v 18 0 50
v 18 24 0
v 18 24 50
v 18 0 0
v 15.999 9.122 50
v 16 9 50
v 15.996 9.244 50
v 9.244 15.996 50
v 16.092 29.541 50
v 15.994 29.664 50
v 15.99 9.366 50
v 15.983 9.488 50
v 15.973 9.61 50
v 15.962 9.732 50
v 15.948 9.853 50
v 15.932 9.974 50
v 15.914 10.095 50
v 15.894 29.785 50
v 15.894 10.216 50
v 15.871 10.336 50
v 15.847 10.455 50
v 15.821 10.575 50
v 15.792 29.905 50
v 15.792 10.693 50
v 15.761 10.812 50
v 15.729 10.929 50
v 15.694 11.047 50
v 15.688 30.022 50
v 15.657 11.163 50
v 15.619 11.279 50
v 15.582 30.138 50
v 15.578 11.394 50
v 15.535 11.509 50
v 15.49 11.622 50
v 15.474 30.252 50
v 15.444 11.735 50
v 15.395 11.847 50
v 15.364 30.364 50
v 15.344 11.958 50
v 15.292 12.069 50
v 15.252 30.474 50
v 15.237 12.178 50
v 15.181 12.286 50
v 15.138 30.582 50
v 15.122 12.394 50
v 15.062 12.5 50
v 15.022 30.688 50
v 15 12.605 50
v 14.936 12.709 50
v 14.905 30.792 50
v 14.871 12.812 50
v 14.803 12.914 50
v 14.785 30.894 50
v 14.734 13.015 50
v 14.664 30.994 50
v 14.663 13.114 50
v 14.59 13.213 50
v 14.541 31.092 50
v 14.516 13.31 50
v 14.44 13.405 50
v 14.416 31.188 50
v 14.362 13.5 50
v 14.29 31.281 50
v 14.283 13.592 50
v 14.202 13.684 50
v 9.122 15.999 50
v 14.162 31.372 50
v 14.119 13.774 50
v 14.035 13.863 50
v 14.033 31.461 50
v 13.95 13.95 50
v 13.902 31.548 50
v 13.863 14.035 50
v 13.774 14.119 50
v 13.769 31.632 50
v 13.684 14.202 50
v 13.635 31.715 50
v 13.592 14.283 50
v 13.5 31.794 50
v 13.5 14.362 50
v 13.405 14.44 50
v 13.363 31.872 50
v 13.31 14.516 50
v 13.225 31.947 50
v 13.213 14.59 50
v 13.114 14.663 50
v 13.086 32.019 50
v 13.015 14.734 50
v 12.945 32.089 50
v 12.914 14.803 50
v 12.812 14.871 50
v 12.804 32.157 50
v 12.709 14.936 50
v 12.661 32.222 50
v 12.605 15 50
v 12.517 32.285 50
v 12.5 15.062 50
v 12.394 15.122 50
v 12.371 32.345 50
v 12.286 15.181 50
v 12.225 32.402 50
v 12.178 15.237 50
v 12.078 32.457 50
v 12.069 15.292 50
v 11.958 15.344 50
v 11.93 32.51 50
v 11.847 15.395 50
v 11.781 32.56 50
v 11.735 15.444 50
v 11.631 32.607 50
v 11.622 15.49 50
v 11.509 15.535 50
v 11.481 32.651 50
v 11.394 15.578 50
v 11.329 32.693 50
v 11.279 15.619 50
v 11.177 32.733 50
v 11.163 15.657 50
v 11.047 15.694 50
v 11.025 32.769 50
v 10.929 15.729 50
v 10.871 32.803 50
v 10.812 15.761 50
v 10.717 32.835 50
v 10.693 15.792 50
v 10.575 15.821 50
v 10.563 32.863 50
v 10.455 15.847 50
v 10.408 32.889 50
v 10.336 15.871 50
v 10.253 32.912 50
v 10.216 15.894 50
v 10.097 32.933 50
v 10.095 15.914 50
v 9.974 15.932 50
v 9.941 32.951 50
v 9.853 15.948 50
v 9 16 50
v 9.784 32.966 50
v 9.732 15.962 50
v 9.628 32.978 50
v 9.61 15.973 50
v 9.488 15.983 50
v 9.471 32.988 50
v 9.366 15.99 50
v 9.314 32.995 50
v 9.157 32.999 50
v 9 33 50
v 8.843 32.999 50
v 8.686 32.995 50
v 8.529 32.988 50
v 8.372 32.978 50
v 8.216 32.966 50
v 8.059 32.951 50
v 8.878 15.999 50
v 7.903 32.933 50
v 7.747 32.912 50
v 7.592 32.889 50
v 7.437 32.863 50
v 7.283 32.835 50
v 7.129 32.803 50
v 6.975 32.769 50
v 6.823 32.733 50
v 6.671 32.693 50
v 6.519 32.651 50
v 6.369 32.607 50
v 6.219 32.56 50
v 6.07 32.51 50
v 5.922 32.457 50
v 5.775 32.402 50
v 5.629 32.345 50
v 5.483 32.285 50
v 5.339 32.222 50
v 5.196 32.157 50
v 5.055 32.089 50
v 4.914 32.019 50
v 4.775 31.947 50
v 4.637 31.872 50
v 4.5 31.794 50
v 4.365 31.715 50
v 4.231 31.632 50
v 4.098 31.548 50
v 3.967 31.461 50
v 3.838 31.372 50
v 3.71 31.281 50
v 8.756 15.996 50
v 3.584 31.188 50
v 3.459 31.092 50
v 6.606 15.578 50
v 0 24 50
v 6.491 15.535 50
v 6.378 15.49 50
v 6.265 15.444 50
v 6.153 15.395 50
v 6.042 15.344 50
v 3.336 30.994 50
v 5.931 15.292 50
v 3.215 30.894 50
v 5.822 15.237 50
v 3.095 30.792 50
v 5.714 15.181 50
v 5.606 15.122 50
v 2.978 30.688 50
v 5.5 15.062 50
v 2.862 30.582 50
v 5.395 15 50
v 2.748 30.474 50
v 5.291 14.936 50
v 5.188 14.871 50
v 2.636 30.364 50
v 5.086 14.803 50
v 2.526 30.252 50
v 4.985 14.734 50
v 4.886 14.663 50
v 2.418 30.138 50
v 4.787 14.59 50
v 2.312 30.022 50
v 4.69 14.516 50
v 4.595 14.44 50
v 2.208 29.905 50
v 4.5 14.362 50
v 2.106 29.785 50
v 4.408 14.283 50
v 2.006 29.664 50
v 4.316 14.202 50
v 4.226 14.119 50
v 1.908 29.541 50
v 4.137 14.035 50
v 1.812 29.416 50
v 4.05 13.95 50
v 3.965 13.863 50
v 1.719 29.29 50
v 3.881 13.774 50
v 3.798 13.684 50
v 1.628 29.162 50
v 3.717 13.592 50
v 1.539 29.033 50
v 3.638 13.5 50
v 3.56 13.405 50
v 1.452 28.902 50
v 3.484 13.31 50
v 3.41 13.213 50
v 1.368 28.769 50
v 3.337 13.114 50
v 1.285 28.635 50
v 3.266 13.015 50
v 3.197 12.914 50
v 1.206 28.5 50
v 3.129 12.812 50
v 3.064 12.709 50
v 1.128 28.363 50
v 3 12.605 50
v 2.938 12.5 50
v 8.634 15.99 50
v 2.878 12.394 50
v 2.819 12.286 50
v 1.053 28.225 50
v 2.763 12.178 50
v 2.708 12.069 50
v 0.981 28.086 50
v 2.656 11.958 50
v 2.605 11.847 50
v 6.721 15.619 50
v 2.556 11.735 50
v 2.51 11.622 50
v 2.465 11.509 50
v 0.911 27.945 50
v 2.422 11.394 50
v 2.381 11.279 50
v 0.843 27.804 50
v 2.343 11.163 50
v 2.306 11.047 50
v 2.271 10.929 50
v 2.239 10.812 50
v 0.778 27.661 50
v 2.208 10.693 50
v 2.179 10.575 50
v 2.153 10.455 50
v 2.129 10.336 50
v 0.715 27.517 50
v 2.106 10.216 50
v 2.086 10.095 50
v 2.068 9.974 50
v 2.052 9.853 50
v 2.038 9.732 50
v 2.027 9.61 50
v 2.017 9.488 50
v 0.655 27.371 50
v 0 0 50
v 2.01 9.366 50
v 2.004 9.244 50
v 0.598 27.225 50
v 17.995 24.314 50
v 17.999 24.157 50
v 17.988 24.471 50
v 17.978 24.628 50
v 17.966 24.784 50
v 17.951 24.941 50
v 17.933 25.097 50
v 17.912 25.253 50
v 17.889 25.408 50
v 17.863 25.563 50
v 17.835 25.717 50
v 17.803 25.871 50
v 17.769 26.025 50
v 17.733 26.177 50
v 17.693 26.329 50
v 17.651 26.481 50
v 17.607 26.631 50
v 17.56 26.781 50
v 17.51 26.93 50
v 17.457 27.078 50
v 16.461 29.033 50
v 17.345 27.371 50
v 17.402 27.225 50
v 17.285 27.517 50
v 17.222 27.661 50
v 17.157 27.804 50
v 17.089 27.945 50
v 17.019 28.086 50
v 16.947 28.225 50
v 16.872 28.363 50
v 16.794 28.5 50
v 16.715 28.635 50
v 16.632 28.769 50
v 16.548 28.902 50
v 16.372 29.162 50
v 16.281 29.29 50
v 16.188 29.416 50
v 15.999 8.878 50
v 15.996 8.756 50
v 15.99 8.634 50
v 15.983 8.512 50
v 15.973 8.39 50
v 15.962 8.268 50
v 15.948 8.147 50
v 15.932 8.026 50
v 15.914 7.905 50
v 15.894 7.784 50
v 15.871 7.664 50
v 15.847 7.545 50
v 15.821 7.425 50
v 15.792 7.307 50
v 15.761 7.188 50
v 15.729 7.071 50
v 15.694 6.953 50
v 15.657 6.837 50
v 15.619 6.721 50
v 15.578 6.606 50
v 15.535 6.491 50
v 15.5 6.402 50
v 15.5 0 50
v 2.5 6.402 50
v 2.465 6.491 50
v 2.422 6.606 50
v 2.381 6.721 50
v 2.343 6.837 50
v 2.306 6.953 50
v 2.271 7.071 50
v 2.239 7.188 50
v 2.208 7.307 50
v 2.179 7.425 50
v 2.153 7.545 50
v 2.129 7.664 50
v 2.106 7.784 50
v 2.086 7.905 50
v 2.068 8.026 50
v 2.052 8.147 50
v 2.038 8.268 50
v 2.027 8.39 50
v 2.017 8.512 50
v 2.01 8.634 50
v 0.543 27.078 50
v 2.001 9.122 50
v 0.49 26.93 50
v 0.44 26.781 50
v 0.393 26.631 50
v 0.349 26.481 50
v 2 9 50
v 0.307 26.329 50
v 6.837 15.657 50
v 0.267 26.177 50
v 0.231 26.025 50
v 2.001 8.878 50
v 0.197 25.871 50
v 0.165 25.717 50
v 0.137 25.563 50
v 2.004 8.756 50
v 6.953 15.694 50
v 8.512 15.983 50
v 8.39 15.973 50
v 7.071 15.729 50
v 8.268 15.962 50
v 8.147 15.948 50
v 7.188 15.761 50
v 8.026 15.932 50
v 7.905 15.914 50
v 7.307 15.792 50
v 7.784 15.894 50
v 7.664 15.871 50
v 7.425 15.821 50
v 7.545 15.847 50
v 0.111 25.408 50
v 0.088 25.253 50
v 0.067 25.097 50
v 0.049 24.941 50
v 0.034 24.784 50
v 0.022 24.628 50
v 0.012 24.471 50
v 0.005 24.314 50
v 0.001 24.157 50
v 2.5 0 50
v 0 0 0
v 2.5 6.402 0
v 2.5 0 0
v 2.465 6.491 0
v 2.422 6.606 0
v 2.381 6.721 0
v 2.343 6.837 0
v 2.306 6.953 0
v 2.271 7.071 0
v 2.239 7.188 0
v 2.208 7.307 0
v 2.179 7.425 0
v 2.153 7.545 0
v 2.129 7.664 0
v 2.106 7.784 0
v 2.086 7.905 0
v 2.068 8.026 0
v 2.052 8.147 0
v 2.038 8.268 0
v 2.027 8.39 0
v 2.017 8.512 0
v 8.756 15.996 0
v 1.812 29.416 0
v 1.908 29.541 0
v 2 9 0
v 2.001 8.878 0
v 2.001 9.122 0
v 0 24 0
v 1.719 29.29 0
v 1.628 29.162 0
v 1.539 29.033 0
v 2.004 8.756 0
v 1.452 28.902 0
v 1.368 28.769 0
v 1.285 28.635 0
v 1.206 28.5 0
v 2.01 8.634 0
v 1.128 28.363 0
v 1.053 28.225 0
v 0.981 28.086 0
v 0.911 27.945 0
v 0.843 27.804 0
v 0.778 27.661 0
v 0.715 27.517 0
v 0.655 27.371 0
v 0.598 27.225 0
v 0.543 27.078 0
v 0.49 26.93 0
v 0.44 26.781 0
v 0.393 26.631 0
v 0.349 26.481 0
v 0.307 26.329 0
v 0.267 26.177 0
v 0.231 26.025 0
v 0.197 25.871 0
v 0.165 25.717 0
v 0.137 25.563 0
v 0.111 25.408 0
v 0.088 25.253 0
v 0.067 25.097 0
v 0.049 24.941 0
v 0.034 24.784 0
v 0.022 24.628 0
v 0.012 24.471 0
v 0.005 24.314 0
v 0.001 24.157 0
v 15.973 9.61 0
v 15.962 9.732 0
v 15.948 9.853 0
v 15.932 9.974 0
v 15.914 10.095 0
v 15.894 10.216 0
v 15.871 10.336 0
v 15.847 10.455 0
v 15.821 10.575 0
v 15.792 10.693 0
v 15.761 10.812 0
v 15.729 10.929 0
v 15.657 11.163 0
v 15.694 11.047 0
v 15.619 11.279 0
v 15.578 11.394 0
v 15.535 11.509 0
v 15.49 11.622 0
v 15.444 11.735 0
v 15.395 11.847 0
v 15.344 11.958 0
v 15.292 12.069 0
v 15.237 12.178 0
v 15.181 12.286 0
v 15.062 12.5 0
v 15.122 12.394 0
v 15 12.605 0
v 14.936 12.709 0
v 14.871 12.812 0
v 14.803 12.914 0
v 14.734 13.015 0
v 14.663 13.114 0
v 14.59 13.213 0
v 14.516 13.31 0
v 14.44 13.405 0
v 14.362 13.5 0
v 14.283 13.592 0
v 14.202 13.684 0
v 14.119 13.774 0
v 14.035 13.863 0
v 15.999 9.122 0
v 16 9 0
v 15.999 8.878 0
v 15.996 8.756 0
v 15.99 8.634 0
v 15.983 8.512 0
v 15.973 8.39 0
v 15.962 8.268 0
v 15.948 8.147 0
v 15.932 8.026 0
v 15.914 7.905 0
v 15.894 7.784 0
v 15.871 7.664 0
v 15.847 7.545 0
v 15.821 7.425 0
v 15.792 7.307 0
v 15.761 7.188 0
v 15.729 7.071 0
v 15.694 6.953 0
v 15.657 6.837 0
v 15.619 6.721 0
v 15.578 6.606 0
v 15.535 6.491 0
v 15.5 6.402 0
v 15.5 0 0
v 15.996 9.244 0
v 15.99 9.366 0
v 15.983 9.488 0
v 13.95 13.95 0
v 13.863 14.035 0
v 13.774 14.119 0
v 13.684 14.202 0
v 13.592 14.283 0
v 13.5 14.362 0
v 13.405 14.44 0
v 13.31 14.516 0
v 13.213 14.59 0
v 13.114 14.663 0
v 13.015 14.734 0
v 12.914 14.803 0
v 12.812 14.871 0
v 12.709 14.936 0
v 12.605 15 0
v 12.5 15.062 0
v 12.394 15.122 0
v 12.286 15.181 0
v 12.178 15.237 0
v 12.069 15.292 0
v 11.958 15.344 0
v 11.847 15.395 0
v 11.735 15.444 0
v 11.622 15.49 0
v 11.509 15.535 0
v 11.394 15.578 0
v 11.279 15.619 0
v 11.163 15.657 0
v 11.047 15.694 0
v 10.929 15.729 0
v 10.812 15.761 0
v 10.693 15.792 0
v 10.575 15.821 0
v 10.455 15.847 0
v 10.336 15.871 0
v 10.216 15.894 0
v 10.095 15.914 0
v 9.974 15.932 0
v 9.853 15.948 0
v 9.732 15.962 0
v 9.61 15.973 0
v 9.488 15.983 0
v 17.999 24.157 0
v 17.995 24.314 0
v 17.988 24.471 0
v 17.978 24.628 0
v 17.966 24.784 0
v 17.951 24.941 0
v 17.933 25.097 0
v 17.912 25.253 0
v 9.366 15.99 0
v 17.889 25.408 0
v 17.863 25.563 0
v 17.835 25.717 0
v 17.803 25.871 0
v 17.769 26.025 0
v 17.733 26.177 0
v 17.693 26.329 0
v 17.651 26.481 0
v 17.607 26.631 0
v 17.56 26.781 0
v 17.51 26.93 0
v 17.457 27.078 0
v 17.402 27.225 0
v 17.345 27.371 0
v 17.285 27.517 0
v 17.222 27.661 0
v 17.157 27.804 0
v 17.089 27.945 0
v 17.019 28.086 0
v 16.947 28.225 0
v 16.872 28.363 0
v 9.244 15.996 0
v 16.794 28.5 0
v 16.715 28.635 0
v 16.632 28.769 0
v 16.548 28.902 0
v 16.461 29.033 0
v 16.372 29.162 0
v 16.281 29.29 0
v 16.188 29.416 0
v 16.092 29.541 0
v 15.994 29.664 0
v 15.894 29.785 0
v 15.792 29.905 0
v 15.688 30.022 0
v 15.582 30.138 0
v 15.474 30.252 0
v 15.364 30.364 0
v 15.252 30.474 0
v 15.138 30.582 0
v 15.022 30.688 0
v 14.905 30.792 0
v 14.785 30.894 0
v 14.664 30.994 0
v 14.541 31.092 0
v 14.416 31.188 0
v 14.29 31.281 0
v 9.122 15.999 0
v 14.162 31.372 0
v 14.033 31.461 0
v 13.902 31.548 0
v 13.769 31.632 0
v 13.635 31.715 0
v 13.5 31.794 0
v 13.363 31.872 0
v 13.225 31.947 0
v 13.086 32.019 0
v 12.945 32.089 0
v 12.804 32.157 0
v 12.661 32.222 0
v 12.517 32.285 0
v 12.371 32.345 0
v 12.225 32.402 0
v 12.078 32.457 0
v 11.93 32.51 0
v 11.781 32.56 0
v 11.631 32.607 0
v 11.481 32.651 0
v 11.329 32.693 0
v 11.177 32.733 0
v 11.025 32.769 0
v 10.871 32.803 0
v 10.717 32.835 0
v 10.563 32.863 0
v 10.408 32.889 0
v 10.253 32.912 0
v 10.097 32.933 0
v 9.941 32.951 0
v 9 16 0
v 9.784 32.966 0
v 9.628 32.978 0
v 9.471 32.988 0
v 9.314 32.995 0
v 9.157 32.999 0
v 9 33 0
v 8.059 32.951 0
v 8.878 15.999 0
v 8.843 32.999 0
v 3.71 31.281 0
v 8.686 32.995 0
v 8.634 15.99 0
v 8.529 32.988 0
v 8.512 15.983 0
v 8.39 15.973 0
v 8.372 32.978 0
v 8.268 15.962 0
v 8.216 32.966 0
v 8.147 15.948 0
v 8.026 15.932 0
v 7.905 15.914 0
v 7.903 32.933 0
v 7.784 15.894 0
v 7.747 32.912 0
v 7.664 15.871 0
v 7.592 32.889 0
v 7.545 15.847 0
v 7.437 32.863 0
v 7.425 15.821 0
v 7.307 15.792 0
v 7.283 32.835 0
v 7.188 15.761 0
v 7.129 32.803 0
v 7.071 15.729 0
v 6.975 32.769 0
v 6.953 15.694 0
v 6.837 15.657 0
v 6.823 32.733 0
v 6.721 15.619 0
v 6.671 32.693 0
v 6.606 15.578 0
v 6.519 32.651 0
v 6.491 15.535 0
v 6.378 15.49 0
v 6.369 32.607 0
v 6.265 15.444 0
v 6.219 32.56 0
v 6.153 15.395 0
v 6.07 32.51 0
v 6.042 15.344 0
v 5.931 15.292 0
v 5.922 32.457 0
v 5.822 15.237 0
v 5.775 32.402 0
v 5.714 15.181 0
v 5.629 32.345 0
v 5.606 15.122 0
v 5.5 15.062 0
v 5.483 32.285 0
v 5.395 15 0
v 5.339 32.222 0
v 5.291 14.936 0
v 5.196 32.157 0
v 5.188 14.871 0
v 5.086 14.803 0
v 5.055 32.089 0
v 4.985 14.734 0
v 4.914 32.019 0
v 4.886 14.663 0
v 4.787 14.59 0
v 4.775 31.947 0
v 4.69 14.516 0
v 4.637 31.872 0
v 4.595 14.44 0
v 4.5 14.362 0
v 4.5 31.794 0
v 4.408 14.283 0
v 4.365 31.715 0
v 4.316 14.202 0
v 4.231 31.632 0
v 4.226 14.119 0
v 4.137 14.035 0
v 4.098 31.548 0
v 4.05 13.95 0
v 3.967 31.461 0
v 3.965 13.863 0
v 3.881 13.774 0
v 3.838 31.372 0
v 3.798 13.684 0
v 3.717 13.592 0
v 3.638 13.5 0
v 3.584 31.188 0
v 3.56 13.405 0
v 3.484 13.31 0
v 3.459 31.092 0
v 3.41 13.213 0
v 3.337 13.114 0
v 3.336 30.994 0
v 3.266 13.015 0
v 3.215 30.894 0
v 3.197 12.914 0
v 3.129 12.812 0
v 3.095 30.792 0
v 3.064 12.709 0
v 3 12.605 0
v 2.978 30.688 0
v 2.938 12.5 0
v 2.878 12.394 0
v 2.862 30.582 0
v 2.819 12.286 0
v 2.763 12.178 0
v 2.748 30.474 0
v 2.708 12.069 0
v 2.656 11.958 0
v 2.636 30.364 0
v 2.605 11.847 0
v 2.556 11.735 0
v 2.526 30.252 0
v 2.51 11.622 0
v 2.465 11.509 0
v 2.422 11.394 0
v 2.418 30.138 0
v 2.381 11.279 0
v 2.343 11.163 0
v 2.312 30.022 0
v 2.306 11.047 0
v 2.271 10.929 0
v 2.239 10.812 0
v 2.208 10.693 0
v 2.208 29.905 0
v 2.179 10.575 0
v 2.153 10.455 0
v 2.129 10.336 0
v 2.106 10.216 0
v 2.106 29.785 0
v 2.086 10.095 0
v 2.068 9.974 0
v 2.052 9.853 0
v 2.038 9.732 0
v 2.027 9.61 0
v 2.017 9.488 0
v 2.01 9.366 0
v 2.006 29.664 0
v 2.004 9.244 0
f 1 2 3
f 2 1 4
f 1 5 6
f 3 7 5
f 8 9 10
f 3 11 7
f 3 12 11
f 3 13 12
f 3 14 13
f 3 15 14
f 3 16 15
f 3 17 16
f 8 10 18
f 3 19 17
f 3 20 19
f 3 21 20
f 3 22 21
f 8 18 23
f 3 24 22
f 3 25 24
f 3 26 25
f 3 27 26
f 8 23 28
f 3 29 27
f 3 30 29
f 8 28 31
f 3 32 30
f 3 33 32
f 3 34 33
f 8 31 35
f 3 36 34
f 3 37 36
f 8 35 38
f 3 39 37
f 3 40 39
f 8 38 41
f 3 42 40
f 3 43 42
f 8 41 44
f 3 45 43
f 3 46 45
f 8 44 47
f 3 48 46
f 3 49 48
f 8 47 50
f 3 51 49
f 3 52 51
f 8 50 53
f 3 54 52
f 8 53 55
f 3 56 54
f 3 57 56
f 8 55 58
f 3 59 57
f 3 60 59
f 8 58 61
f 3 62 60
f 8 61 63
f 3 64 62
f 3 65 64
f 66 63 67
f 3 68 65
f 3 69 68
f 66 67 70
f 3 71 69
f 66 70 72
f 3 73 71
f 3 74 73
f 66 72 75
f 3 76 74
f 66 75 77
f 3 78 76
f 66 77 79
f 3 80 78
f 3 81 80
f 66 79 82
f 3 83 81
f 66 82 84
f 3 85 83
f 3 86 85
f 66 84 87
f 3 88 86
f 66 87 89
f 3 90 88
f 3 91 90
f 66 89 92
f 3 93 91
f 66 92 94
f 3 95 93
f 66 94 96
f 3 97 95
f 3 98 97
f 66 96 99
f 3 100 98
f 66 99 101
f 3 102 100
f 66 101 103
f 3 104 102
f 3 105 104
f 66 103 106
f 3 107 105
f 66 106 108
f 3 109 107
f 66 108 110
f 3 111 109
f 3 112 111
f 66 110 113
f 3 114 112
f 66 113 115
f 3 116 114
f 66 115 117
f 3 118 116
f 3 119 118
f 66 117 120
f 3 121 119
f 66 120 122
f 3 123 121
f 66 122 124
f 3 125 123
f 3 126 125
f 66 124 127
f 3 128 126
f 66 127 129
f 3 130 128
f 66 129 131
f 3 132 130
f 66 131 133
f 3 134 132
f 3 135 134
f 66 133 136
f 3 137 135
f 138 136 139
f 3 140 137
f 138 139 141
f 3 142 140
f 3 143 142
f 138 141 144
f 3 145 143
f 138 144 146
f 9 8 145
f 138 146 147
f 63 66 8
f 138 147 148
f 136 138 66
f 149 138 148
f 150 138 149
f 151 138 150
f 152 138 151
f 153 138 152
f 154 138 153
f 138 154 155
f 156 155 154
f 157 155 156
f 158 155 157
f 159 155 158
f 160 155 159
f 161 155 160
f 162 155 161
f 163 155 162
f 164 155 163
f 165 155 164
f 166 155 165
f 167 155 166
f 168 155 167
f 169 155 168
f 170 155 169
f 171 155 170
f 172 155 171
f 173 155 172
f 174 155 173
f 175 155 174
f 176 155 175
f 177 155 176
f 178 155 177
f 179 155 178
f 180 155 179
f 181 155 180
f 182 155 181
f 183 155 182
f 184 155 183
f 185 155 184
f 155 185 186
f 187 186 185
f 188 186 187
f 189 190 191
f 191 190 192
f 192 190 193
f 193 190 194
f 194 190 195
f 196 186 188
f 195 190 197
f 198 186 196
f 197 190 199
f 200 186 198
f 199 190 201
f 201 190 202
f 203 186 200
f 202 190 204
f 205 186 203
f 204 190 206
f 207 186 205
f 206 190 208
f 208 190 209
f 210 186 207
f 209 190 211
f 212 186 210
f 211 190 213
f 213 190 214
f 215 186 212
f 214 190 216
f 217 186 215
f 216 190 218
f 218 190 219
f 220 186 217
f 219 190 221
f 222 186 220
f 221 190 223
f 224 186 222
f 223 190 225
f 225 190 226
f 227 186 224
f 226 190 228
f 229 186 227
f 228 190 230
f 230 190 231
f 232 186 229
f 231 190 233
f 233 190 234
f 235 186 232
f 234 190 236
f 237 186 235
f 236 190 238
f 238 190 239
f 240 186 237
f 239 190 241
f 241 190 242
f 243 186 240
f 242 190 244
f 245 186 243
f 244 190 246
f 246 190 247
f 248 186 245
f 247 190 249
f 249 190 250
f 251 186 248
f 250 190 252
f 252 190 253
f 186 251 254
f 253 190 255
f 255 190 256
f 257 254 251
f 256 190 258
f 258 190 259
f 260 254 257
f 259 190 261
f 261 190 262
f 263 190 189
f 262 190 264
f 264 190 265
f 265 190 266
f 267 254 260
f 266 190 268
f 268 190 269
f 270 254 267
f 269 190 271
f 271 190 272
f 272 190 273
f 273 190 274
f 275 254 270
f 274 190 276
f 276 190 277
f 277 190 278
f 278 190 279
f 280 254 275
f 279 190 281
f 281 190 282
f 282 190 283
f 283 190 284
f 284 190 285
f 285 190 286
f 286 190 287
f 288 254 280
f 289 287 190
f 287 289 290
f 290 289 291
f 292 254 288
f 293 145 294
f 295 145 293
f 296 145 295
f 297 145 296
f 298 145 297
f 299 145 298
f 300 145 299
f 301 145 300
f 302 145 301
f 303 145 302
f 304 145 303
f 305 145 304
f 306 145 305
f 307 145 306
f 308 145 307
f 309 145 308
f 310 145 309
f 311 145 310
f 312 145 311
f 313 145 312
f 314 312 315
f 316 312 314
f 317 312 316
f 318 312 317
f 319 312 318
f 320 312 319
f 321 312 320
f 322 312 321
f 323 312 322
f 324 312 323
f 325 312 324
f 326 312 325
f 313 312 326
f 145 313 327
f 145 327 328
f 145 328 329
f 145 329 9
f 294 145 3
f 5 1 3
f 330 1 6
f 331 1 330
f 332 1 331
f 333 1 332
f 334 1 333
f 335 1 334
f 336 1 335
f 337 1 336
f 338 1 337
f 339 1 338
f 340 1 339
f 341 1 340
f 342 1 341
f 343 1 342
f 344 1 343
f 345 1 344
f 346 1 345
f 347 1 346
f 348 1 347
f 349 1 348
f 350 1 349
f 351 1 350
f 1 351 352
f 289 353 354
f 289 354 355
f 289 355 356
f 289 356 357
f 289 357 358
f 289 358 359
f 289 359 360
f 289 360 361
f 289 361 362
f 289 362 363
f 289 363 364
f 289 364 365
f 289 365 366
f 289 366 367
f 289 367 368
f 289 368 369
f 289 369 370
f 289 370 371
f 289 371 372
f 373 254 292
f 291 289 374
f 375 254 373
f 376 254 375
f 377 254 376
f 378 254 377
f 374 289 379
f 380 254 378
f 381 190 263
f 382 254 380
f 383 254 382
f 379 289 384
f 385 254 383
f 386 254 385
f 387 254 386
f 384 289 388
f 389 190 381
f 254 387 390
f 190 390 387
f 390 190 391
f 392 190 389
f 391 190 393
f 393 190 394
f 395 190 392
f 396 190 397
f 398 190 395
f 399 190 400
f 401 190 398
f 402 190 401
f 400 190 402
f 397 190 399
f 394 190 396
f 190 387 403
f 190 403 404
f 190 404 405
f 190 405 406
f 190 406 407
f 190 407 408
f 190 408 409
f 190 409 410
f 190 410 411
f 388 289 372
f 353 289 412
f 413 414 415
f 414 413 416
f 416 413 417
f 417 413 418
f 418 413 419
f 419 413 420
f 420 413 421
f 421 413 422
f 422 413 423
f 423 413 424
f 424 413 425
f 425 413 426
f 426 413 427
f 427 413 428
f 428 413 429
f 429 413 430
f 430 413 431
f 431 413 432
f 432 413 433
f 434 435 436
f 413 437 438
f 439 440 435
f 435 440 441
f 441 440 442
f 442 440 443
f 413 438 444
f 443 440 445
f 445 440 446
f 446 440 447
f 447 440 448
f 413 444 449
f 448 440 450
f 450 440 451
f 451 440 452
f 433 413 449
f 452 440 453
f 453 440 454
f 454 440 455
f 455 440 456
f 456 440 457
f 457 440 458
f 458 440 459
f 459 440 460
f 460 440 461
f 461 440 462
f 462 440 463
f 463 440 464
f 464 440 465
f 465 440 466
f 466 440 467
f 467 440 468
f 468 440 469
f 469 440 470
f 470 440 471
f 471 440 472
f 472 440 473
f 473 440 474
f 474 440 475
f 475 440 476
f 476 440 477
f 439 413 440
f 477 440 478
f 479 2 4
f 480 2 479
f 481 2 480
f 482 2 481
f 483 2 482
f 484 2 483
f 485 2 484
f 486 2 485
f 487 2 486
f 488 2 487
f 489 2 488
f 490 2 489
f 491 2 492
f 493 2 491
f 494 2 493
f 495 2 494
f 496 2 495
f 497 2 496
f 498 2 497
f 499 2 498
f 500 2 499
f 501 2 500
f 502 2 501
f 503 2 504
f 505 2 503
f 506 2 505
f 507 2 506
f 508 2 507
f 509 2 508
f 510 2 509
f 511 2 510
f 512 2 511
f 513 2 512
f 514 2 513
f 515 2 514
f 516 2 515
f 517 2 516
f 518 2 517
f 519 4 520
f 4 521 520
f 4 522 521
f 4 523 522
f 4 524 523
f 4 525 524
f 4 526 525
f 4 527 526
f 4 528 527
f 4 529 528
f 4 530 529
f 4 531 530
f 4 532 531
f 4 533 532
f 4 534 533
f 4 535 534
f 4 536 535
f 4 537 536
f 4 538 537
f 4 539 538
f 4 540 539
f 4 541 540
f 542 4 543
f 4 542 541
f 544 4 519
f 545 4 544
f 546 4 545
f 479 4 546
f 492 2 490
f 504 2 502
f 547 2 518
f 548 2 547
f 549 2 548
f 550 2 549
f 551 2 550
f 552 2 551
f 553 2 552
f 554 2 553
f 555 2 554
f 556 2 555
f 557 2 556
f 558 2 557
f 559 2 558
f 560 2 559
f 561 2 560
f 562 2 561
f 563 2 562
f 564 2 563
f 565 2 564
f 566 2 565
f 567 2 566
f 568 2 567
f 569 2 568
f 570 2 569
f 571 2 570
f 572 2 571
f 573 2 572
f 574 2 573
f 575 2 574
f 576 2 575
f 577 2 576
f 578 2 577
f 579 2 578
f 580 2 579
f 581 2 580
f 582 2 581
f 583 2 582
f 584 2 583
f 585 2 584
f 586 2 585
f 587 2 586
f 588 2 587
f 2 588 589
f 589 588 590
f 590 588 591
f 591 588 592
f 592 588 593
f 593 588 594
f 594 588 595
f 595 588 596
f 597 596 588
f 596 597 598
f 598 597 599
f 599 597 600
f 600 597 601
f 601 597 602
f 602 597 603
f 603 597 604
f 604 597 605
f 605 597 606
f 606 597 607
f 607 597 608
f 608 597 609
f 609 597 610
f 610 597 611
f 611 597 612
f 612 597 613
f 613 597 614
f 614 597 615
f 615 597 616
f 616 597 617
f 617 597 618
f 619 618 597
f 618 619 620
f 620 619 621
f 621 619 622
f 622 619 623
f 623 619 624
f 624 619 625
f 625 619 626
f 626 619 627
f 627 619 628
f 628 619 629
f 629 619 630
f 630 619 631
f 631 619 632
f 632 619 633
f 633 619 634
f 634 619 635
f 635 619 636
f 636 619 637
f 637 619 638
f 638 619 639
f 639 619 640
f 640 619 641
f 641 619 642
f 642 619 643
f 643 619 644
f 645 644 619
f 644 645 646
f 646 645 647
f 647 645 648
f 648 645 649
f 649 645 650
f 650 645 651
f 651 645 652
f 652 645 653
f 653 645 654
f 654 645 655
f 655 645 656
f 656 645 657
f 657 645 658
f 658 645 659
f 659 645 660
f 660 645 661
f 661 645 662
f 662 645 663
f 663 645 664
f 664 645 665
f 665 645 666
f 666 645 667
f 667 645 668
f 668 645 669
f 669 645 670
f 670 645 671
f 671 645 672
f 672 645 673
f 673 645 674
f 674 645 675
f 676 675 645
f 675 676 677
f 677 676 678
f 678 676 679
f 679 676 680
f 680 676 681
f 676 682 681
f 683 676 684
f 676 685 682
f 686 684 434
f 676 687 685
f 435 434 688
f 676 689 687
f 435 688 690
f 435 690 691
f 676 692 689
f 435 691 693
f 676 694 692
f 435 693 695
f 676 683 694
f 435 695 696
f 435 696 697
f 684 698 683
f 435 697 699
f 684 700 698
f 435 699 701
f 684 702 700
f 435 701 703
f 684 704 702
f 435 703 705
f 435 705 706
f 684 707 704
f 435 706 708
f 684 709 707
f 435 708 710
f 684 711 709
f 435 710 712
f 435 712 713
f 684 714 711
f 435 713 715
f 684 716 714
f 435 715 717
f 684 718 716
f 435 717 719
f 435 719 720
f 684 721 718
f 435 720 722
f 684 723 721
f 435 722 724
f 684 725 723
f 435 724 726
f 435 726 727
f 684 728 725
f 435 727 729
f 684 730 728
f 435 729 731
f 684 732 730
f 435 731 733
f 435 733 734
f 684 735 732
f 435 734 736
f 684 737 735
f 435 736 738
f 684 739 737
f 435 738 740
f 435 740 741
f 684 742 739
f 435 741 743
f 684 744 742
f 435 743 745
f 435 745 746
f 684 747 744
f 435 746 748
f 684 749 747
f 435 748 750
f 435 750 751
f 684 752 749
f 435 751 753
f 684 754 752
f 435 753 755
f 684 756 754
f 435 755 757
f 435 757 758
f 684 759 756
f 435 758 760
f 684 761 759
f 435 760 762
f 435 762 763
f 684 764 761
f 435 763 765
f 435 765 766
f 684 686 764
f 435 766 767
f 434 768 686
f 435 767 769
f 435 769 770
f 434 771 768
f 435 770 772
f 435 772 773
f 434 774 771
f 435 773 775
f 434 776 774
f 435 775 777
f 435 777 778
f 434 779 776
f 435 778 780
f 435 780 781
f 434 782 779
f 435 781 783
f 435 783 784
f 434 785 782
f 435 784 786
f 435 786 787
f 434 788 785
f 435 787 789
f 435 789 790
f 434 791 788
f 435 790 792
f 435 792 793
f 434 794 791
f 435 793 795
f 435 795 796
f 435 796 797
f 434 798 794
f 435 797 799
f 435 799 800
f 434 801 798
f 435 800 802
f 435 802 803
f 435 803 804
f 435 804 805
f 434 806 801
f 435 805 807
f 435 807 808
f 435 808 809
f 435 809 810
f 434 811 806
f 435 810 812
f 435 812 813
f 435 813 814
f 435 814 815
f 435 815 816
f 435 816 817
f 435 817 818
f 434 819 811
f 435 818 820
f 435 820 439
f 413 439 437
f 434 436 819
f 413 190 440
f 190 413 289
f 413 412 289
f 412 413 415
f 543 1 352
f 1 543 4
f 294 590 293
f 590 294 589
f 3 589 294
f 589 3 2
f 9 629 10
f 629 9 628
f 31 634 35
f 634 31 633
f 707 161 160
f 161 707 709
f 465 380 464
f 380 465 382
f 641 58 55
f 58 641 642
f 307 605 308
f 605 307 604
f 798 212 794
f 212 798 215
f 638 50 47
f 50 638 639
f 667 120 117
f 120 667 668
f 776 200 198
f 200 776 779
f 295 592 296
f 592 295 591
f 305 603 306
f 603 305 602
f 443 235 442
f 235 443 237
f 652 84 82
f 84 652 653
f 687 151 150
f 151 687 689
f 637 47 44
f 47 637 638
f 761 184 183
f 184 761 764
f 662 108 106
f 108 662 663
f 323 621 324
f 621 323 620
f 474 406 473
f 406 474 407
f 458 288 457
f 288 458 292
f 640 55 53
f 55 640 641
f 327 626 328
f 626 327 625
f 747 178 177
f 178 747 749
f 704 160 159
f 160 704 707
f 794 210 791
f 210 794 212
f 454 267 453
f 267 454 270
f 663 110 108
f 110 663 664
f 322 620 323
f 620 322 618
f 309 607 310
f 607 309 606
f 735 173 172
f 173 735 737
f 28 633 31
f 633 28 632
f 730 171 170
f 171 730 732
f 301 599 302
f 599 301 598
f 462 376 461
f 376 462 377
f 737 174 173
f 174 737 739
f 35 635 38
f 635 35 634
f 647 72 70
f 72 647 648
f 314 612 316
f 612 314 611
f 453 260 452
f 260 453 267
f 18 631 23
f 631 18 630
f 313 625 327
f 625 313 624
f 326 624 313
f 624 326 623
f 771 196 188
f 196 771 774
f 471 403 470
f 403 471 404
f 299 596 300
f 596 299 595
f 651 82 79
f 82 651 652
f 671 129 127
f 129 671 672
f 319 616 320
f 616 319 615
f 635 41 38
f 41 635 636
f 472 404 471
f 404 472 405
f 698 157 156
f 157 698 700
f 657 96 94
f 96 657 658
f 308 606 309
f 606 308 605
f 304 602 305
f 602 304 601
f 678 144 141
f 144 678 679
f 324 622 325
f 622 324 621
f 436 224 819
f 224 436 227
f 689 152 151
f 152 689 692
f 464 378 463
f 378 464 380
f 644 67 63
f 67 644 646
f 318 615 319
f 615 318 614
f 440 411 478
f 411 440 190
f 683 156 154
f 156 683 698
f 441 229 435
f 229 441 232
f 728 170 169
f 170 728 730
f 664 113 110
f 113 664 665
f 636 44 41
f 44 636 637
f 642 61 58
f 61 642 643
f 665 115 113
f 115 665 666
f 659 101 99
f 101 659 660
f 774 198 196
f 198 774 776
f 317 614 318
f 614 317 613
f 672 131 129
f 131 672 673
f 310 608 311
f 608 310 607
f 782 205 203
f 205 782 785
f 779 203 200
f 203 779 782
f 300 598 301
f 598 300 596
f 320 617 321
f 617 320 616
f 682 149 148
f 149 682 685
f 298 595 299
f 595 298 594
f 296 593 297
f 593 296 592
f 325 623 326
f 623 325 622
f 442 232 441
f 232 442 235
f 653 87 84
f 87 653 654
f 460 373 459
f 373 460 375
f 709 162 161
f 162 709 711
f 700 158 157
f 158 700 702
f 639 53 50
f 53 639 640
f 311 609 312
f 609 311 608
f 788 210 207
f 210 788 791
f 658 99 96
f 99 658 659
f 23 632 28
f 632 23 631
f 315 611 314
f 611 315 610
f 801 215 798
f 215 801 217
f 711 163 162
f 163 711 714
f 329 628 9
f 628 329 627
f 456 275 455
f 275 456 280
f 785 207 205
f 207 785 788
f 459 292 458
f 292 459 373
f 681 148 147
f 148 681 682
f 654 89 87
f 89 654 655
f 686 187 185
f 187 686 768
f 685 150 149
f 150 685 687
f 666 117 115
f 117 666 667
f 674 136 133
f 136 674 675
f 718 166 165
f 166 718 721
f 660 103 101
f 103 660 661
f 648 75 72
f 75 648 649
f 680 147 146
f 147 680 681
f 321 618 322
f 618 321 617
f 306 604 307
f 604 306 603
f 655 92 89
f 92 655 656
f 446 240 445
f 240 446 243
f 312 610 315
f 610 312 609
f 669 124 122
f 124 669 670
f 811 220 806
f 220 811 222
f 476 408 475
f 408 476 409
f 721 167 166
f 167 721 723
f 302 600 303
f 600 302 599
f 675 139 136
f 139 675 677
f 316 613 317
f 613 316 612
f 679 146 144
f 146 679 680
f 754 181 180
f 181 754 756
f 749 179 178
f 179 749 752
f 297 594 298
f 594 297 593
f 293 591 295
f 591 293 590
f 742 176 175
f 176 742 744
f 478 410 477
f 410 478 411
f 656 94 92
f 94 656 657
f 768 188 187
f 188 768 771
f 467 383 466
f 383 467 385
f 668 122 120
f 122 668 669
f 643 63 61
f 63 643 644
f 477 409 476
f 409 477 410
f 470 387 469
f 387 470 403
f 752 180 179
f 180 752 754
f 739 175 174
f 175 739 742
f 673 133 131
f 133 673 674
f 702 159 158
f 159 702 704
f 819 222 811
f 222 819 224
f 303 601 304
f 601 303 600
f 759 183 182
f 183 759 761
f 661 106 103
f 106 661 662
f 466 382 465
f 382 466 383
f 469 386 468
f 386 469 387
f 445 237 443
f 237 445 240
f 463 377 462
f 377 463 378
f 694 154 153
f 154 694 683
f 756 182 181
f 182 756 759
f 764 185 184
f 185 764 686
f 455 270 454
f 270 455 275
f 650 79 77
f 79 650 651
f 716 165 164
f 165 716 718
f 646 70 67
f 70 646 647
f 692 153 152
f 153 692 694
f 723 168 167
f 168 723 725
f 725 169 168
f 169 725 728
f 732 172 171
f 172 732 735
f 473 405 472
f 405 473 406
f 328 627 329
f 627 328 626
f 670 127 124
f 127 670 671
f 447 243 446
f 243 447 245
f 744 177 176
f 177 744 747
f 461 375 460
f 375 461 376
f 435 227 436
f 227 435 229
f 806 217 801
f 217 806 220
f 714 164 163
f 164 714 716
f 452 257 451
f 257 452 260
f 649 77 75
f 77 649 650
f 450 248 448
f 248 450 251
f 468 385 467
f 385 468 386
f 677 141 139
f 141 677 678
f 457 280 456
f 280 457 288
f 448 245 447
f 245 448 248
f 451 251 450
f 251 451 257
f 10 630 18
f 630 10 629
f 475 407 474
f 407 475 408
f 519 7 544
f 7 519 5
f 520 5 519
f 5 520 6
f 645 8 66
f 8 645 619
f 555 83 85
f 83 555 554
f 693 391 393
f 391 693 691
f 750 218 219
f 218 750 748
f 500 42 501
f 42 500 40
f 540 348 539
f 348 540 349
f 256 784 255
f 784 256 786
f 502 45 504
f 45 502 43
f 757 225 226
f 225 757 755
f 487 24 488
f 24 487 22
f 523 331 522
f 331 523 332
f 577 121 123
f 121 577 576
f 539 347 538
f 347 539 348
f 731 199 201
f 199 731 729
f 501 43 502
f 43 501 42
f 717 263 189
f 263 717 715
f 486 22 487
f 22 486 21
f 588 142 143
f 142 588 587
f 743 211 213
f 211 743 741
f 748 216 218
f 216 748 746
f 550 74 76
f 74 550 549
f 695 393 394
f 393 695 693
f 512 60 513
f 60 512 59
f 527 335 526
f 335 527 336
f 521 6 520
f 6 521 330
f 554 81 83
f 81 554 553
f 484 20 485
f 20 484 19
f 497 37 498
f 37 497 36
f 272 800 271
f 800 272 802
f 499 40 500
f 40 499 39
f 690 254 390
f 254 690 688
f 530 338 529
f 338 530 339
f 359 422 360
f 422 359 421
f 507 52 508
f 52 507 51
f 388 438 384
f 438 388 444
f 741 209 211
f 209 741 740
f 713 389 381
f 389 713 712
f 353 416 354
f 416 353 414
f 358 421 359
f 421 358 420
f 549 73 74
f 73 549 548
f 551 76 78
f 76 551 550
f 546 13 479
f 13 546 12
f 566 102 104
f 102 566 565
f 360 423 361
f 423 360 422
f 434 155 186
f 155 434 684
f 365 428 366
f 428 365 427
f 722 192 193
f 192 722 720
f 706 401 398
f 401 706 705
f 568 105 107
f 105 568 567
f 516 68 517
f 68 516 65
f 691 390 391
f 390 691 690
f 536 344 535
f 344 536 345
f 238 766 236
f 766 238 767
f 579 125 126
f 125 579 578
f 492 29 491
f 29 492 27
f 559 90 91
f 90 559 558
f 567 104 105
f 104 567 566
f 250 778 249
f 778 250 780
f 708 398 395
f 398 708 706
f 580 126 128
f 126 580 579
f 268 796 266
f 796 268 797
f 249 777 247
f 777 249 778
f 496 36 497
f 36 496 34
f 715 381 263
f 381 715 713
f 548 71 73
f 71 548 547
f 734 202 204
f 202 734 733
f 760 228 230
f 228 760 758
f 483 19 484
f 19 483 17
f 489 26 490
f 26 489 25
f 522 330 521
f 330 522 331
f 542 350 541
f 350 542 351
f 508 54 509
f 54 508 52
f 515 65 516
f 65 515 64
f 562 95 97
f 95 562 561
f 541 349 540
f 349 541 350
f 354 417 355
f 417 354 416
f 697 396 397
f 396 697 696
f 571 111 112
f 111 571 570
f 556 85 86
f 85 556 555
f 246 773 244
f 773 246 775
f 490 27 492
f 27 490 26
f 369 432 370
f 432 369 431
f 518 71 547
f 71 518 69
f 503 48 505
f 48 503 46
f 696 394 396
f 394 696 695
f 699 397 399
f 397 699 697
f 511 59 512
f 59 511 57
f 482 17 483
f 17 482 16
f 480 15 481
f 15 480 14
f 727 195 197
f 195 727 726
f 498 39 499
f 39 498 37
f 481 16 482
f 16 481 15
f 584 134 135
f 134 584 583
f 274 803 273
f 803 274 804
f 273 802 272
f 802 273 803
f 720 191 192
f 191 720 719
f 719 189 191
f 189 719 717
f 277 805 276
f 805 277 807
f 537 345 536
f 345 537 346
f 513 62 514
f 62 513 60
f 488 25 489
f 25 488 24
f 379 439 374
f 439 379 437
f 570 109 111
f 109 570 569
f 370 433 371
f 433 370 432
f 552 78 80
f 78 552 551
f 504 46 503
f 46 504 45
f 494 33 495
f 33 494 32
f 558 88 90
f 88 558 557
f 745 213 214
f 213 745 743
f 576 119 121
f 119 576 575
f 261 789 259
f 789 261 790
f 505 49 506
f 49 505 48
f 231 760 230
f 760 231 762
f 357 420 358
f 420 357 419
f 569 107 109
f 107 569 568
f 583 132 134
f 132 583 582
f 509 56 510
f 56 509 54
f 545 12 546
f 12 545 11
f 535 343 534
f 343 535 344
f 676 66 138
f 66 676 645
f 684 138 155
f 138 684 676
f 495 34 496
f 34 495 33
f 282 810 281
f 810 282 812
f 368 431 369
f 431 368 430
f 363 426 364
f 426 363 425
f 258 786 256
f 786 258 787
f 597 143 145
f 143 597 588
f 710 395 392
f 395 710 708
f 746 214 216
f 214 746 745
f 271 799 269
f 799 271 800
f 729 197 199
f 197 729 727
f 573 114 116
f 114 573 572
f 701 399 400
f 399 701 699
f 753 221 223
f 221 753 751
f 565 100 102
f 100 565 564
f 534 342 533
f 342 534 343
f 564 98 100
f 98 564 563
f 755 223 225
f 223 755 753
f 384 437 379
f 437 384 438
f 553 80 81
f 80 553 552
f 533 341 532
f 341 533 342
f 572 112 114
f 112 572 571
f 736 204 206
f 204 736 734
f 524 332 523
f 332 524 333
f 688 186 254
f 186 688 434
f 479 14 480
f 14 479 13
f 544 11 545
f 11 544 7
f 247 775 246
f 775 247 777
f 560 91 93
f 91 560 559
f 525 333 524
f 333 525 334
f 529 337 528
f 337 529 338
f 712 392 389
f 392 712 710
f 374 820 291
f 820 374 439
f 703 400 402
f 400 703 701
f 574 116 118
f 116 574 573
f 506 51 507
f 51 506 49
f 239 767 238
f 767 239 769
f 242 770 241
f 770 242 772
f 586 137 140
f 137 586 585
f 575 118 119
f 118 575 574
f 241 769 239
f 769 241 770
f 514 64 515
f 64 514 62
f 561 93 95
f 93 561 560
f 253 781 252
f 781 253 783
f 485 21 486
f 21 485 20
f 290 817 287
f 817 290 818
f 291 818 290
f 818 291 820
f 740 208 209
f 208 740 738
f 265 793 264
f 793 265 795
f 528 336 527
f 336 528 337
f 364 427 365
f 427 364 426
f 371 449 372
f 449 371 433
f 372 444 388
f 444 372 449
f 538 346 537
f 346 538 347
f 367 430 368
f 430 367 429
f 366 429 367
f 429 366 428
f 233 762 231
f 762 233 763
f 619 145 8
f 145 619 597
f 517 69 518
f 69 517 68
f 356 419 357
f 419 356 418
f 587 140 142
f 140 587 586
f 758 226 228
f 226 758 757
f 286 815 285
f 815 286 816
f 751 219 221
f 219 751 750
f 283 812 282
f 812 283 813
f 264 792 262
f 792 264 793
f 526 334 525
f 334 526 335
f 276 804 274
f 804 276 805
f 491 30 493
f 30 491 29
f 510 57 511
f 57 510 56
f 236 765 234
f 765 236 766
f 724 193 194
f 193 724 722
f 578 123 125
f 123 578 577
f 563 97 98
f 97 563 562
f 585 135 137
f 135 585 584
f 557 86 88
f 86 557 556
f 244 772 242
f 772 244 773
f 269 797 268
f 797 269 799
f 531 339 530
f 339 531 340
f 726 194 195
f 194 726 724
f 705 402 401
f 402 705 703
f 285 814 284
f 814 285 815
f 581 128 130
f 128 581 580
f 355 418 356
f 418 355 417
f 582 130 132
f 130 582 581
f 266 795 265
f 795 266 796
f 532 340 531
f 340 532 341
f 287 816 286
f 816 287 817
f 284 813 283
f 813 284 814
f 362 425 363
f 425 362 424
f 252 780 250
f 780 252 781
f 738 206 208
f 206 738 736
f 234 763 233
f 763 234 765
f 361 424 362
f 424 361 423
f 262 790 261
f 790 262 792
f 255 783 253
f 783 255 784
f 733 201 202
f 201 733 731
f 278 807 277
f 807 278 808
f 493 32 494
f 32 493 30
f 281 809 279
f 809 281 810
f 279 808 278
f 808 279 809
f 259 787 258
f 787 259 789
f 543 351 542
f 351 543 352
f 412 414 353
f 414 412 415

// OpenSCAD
// Chair Stop

eps = 0.001;
eps2 = eps * 2;
$fa = 1.0;
$fs = 0.1;


thickness = 2;
gap_r = 7;
gap_d = thickness;
latch_w = 0.5;
guard_d = 15;

item_h = 50;
item_w = (gap_r + thickness) * 2;
item_d = gap_d + gap_r * 2 + thickness;


difference() {
  union() {
    cube([item_w, gap_d + gap_r + guard_d, item_h]);
    translate([gap_r + thickness, gap_d + gap_r + guard_d, 0])
      cylinder(h=item_h, r=gap_r + thickness);
  }
  // Gap
  color("red") {
    union() {
      translate([gap_r + thickness, gap_d + gap_r, -eps])
        cylinder(h=item_h + eps2, r=gap_r);
      translate([thickness + latch_w, -eps, -eps])
        cube([(gap_r - latch_w) * 2, gap_d + gap_r, item_h + eps2]);
    }
  }
}
